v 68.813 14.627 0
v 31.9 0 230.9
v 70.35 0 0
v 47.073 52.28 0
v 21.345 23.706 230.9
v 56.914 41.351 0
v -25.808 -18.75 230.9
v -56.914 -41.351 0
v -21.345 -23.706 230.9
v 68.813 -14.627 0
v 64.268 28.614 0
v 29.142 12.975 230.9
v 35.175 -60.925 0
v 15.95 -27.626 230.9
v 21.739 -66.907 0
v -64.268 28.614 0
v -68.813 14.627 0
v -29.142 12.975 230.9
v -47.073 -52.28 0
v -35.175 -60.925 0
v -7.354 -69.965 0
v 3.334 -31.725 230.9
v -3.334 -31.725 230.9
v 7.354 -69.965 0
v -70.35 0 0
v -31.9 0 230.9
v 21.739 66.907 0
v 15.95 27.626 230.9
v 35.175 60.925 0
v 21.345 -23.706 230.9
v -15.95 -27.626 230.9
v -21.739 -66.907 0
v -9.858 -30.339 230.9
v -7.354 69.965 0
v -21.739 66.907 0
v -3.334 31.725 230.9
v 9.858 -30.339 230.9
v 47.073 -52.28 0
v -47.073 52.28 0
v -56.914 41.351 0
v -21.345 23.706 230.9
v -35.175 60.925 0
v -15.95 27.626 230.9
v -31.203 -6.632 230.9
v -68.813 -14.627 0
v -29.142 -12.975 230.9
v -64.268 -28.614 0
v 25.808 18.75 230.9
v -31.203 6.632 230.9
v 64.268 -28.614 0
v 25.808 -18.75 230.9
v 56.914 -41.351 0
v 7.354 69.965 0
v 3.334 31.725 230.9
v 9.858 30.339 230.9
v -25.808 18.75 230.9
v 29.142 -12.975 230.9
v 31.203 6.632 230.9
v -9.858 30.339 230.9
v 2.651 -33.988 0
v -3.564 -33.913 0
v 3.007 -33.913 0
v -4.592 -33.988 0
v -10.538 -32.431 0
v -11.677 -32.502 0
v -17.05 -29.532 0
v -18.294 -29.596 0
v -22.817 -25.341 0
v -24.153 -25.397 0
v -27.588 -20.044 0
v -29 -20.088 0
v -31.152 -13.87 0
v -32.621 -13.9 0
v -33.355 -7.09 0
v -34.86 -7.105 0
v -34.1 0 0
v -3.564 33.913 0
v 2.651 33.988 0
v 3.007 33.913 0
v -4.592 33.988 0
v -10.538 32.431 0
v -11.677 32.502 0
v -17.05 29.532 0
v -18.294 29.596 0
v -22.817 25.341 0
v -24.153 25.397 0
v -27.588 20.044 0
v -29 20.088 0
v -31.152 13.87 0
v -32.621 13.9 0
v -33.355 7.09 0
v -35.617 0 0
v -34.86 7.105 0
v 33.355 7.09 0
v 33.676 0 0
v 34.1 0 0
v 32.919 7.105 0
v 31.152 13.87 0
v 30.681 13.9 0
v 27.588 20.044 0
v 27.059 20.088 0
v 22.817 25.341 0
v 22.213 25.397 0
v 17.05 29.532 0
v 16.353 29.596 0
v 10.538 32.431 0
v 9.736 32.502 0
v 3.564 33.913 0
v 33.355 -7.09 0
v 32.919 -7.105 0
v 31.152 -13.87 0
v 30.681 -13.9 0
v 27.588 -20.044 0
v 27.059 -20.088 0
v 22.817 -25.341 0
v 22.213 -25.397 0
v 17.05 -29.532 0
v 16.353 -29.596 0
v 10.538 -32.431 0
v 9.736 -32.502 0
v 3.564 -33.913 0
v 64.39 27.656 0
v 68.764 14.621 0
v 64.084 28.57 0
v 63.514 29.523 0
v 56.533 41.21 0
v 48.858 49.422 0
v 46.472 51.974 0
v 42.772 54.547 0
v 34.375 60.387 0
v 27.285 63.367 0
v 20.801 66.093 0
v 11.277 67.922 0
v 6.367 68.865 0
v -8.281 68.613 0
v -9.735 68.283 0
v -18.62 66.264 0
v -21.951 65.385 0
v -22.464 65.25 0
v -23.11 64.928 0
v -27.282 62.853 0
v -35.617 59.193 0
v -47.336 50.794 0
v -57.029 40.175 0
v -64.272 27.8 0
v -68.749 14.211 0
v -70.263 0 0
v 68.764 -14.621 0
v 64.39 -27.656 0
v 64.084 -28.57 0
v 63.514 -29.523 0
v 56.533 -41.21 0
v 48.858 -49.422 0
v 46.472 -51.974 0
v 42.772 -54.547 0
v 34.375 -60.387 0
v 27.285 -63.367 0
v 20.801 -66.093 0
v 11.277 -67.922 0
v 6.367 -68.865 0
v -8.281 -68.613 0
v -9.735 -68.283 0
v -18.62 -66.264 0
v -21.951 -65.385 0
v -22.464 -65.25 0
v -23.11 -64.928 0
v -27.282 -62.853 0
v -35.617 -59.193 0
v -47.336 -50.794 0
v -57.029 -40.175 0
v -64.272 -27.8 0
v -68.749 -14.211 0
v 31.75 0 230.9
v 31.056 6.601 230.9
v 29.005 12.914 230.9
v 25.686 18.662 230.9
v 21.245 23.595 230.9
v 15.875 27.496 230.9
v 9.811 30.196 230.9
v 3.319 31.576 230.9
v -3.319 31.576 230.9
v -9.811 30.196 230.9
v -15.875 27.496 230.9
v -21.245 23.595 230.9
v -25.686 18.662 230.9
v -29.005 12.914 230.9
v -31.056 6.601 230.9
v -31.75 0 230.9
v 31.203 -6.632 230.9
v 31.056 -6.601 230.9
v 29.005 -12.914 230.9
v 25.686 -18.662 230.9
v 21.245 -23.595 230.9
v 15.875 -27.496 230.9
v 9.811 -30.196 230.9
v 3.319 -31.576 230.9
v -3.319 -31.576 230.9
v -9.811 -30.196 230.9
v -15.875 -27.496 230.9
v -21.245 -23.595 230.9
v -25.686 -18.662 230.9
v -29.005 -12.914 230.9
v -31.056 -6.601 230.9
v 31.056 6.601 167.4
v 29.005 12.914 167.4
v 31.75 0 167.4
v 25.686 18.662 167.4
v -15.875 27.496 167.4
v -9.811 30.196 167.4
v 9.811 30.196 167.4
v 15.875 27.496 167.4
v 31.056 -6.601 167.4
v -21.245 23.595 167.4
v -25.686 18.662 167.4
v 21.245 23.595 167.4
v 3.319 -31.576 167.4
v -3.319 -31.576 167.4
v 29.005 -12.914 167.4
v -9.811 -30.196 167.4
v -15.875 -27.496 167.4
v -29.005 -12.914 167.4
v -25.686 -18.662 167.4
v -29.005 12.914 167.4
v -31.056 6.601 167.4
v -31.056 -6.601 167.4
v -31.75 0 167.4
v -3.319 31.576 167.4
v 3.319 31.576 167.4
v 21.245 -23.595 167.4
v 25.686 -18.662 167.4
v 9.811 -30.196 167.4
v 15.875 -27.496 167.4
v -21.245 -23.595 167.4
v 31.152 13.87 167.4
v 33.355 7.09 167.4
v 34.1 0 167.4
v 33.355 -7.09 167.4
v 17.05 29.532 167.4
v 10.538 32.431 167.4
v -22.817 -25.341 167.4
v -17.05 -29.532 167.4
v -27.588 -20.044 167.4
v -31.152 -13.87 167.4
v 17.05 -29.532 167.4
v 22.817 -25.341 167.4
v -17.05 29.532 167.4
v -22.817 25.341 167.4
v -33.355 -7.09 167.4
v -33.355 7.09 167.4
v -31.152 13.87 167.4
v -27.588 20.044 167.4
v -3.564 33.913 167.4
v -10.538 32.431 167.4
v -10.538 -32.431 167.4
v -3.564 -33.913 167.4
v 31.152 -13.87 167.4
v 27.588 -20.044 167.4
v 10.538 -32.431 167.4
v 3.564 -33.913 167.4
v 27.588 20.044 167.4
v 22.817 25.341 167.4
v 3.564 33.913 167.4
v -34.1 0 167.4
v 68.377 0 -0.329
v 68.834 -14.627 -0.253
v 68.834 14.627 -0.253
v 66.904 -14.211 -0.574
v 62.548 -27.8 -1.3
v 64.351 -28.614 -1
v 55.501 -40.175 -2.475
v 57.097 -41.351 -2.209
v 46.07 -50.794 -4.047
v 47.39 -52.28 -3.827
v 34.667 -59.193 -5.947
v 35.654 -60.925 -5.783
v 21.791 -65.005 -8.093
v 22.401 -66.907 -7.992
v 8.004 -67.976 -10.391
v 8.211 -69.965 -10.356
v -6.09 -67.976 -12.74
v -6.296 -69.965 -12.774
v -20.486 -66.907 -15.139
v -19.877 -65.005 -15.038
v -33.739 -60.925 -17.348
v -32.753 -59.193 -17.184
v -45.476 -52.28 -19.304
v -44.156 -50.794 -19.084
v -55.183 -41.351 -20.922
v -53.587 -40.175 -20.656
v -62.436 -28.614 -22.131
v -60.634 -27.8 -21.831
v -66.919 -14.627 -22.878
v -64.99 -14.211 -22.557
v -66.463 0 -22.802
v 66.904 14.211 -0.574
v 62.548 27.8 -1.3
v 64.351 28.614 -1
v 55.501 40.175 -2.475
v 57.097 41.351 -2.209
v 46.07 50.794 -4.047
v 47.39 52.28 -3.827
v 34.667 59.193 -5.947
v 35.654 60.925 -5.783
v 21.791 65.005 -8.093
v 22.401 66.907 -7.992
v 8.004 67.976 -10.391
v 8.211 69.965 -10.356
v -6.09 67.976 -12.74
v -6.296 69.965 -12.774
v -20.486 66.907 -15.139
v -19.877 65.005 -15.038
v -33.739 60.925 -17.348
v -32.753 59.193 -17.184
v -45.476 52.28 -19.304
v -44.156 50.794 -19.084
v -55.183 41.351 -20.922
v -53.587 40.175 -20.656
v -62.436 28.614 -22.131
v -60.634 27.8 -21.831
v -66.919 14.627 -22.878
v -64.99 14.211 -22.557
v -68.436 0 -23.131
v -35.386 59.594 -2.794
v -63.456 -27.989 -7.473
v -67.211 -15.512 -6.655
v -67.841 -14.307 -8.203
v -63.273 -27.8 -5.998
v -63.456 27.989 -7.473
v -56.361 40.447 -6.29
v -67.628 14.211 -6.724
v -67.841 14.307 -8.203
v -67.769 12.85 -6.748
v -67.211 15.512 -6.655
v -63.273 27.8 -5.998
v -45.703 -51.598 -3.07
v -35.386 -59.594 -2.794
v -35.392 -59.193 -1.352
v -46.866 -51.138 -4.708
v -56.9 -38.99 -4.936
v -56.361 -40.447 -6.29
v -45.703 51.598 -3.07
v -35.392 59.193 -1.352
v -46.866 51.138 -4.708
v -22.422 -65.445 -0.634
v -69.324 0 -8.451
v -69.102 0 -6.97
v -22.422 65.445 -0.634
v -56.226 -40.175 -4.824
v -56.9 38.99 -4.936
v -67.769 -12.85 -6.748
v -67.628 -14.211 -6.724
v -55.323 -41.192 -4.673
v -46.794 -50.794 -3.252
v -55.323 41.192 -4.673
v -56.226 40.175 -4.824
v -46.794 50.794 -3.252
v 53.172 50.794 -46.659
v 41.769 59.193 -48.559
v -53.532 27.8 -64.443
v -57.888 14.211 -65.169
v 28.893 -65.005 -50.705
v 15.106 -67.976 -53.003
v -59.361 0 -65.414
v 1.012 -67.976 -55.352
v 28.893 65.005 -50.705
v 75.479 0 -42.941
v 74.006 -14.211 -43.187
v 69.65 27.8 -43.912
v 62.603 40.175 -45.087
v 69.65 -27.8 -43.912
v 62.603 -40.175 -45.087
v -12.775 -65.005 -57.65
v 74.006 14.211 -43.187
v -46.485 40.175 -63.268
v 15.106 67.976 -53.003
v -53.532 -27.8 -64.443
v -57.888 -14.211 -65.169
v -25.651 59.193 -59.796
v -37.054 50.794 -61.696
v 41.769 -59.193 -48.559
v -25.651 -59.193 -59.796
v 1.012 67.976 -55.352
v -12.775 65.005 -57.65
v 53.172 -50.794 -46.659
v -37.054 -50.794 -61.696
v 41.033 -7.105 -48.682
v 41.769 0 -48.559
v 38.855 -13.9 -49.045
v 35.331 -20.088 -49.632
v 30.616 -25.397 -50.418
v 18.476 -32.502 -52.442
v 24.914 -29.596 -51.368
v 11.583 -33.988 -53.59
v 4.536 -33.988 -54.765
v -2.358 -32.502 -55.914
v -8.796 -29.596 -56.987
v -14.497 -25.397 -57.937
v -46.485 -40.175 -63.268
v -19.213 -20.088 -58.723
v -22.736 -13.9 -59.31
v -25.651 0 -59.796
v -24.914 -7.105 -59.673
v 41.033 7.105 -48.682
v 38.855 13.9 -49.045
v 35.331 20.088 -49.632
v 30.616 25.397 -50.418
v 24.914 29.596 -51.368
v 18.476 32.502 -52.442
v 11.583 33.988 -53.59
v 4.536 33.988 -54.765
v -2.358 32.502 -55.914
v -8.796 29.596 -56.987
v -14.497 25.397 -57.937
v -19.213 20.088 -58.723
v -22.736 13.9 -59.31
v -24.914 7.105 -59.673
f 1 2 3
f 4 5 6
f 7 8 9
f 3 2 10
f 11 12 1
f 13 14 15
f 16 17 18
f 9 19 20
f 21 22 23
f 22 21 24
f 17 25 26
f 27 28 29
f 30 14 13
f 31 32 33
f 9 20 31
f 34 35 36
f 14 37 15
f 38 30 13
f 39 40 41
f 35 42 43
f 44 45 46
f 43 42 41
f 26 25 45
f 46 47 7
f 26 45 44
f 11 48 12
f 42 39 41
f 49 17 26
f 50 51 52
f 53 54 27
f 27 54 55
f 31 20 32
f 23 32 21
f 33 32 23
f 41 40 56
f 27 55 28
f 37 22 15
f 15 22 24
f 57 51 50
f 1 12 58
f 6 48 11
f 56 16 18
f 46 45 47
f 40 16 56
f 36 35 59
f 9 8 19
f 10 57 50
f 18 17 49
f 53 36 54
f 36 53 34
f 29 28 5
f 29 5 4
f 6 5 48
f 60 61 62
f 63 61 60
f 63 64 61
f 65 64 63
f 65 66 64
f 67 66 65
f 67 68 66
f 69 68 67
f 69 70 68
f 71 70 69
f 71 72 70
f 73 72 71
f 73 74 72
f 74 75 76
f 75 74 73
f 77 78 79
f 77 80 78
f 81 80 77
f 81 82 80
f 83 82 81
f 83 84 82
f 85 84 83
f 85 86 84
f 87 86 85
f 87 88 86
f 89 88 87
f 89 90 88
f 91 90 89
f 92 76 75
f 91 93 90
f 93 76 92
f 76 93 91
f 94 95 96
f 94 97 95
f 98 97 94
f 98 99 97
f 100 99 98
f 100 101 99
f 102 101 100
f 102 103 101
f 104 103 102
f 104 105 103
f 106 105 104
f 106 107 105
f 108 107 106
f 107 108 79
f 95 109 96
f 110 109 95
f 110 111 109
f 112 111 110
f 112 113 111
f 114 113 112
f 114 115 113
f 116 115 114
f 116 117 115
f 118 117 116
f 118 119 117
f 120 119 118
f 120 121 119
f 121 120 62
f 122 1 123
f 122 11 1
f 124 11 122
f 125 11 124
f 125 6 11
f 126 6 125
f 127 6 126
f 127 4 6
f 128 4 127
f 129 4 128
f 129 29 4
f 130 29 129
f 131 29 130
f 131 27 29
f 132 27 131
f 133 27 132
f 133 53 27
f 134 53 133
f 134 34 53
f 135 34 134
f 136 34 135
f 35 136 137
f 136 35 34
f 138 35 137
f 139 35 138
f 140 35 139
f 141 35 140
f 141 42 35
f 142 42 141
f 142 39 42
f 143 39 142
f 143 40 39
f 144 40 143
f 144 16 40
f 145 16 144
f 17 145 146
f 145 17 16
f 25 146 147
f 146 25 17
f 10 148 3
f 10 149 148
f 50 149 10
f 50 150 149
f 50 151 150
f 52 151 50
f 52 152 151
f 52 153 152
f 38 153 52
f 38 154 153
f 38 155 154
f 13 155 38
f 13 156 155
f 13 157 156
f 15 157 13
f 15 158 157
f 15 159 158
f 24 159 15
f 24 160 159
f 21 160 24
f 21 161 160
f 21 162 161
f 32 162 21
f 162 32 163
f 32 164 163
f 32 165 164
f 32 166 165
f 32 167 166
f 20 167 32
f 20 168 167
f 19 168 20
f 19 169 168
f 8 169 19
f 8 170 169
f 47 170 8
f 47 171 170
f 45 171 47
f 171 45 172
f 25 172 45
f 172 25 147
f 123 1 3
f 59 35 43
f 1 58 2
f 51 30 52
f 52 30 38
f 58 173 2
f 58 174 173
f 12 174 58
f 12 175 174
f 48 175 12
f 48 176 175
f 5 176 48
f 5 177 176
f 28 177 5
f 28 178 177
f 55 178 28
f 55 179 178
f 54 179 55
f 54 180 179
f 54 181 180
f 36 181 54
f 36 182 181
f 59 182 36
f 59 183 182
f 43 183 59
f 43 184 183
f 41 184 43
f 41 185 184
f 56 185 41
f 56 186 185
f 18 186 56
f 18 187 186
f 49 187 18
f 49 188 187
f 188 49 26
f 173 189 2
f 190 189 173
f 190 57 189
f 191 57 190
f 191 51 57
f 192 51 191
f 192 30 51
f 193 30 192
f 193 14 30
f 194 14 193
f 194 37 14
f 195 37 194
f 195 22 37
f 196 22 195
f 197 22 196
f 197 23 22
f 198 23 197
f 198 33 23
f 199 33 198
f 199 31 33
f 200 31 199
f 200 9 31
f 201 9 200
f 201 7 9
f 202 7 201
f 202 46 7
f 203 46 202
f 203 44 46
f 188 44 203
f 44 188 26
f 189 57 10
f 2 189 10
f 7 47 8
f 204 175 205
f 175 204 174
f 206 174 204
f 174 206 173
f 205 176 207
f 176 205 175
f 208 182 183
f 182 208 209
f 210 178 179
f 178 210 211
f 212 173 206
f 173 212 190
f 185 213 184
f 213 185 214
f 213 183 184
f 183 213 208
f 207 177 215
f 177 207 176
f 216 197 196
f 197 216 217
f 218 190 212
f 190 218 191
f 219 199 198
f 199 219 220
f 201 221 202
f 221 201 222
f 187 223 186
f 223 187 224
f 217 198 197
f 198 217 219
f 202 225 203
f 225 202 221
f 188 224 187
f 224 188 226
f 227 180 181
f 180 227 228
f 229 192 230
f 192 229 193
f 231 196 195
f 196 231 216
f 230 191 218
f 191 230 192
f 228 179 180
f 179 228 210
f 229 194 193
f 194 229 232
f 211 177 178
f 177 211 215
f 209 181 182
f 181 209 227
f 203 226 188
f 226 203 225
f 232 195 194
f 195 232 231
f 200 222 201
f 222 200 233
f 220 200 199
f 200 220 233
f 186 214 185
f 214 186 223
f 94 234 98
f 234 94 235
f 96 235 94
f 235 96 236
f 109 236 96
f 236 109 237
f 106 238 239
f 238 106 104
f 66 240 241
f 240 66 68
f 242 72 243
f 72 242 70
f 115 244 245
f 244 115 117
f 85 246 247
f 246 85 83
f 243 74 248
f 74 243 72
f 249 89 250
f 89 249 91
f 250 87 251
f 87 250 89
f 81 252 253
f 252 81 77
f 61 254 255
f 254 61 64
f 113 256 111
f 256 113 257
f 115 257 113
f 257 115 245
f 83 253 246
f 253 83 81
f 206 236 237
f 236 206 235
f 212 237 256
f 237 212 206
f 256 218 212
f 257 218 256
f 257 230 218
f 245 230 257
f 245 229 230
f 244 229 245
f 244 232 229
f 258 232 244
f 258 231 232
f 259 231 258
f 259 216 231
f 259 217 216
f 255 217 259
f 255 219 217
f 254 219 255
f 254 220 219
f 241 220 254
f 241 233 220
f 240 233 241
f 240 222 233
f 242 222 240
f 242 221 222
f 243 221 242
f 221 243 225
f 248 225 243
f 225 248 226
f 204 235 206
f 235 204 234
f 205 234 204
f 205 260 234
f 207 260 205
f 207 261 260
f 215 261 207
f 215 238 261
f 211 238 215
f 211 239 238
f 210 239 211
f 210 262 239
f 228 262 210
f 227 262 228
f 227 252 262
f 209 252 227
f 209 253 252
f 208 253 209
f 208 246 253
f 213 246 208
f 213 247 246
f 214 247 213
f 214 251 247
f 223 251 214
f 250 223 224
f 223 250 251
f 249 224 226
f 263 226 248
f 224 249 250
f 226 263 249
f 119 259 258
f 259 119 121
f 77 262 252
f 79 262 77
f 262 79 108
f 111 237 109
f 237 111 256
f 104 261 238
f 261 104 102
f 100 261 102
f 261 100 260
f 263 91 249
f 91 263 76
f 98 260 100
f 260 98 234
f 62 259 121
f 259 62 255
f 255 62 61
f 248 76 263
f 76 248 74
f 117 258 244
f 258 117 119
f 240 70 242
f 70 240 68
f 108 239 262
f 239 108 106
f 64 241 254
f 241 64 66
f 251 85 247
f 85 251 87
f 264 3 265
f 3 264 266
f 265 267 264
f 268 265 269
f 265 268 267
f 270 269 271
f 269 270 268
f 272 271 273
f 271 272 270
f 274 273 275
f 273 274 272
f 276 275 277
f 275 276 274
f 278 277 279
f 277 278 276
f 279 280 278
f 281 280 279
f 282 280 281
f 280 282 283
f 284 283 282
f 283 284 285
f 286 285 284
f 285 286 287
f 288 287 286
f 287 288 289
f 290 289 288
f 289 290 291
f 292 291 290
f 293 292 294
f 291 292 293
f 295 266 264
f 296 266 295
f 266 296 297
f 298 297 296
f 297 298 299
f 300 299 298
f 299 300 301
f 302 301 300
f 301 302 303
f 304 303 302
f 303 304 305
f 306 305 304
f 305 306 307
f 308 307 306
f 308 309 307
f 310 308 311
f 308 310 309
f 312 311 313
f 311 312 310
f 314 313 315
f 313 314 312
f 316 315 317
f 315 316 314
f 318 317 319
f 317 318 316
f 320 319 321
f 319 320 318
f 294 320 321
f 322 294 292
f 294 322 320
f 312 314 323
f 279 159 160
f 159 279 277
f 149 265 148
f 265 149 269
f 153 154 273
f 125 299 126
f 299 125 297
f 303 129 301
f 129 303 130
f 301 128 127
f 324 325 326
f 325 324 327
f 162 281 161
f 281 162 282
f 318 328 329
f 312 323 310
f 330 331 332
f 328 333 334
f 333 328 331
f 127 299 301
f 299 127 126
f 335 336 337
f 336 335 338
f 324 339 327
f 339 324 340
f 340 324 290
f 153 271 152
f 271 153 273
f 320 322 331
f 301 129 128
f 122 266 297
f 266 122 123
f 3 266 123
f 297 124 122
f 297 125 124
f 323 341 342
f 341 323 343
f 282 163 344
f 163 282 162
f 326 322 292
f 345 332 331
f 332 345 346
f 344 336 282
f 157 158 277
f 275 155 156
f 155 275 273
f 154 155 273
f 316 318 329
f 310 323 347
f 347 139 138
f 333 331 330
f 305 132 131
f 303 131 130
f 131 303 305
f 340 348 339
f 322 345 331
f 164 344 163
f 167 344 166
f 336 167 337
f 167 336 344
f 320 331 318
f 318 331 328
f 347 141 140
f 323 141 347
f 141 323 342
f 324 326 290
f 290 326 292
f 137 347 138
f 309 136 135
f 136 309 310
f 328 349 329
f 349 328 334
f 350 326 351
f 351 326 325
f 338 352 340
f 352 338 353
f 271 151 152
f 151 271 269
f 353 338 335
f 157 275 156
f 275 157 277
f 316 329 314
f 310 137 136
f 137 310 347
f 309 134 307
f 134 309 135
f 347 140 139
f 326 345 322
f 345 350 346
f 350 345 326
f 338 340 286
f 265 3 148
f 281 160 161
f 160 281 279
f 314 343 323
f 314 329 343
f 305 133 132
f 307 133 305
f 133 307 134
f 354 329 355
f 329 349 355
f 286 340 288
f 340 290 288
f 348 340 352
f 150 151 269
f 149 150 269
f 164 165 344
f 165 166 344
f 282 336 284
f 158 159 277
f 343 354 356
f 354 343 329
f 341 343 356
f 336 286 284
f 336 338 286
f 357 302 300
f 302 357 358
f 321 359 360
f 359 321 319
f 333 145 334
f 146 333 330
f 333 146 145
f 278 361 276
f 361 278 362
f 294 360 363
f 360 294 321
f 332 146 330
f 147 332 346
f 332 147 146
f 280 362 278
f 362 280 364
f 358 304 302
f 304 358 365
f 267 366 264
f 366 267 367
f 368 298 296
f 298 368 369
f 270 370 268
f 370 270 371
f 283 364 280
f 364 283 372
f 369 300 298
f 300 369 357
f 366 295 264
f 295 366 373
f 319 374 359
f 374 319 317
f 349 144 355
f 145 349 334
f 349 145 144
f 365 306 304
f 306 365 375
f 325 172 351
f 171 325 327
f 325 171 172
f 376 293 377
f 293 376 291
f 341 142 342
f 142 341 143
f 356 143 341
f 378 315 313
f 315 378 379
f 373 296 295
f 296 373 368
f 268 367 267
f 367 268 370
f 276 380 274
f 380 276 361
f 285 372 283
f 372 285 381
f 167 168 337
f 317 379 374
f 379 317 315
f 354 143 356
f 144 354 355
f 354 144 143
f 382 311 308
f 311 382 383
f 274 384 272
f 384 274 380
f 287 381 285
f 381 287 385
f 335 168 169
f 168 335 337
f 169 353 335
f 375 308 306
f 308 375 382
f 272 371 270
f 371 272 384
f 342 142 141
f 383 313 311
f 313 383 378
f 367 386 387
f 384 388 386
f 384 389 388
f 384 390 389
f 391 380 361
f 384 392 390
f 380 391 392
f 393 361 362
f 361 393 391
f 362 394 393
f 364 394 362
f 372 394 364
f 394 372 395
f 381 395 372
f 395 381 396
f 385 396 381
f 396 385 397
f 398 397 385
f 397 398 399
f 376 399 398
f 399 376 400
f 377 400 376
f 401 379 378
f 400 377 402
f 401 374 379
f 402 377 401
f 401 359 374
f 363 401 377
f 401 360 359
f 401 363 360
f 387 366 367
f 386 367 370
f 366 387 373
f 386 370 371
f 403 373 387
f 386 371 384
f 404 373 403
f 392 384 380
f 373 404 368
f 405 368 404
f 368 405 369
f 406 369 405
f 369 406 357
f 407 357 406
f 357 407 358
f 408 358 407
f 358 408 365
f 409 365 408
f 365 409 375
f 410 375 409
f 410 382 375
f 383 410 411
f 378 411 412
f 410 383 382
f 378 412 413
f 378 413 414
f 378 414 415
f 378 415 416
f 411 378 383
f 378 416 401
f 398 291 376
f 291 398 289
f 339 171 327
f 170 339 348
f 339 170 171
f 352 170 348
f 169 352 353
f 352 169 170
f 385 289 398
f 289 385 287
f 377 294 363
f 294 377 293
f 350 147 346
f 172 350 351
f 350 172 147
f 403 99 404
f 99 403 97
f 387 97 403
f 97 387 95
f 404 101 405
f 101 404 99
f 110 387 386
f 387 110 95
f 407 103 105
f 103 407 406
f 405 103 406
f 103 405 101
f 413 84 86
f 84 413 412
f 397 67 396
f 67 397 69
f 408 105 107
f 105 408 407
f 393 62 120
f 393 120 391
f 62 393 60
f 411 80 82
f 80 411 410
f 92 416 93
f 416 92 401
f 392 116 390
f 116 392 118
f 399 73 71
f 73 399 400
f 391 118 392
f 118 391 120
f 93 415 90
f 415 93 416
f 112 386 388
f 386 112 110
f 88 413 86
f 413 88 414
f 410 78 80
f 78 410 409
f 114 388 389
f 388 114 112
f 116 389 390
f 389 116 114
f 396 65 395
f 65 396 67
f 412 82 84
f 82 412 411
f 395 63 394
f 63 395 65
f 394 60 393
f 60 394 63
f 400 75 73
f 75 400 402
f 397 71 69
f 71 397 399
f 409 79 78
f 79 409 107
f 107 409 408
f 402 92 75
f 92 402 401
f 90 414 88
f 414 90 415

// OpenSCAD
union() {
	difference() {
		difference() {
			cylinder(d1 = 140.7000000000, d2 = 63.8000000000, h = 230.9000000000);
			cylinder(center = true, d = 63.5000000000, h = 692.7000000000);
		}
		cylinder(center = true, d = 68.2000000000, h = 334.8000000000);
	}
	intersection() {
		translate(v = [70.3500000000, 0, 0]) {
			rotate(a = [0, -9.462322208025617, 0]) {
				translate(v = [-70.3500000000, 0, 0]) {
					difference() {
						union() {
							cylinder(center = true, d = 136.7000000000, h = 86.4000000000);
							intersection() {
								translate(v = [0, 0, 1154.5000000000]) {
									cube(center = true, size = 2309.0000000000);
								}
								sphere(d = 140.7000000000);
							}
						}
						cylinder(center = true, d = 68.3500000000, h = 172.8000000000);
					}
				}
			}
		}
		translate(v = [0, 0, -1154.5000000000]) {
			cube(center = true, size = 2309.0000000000);
		}
	}
}
